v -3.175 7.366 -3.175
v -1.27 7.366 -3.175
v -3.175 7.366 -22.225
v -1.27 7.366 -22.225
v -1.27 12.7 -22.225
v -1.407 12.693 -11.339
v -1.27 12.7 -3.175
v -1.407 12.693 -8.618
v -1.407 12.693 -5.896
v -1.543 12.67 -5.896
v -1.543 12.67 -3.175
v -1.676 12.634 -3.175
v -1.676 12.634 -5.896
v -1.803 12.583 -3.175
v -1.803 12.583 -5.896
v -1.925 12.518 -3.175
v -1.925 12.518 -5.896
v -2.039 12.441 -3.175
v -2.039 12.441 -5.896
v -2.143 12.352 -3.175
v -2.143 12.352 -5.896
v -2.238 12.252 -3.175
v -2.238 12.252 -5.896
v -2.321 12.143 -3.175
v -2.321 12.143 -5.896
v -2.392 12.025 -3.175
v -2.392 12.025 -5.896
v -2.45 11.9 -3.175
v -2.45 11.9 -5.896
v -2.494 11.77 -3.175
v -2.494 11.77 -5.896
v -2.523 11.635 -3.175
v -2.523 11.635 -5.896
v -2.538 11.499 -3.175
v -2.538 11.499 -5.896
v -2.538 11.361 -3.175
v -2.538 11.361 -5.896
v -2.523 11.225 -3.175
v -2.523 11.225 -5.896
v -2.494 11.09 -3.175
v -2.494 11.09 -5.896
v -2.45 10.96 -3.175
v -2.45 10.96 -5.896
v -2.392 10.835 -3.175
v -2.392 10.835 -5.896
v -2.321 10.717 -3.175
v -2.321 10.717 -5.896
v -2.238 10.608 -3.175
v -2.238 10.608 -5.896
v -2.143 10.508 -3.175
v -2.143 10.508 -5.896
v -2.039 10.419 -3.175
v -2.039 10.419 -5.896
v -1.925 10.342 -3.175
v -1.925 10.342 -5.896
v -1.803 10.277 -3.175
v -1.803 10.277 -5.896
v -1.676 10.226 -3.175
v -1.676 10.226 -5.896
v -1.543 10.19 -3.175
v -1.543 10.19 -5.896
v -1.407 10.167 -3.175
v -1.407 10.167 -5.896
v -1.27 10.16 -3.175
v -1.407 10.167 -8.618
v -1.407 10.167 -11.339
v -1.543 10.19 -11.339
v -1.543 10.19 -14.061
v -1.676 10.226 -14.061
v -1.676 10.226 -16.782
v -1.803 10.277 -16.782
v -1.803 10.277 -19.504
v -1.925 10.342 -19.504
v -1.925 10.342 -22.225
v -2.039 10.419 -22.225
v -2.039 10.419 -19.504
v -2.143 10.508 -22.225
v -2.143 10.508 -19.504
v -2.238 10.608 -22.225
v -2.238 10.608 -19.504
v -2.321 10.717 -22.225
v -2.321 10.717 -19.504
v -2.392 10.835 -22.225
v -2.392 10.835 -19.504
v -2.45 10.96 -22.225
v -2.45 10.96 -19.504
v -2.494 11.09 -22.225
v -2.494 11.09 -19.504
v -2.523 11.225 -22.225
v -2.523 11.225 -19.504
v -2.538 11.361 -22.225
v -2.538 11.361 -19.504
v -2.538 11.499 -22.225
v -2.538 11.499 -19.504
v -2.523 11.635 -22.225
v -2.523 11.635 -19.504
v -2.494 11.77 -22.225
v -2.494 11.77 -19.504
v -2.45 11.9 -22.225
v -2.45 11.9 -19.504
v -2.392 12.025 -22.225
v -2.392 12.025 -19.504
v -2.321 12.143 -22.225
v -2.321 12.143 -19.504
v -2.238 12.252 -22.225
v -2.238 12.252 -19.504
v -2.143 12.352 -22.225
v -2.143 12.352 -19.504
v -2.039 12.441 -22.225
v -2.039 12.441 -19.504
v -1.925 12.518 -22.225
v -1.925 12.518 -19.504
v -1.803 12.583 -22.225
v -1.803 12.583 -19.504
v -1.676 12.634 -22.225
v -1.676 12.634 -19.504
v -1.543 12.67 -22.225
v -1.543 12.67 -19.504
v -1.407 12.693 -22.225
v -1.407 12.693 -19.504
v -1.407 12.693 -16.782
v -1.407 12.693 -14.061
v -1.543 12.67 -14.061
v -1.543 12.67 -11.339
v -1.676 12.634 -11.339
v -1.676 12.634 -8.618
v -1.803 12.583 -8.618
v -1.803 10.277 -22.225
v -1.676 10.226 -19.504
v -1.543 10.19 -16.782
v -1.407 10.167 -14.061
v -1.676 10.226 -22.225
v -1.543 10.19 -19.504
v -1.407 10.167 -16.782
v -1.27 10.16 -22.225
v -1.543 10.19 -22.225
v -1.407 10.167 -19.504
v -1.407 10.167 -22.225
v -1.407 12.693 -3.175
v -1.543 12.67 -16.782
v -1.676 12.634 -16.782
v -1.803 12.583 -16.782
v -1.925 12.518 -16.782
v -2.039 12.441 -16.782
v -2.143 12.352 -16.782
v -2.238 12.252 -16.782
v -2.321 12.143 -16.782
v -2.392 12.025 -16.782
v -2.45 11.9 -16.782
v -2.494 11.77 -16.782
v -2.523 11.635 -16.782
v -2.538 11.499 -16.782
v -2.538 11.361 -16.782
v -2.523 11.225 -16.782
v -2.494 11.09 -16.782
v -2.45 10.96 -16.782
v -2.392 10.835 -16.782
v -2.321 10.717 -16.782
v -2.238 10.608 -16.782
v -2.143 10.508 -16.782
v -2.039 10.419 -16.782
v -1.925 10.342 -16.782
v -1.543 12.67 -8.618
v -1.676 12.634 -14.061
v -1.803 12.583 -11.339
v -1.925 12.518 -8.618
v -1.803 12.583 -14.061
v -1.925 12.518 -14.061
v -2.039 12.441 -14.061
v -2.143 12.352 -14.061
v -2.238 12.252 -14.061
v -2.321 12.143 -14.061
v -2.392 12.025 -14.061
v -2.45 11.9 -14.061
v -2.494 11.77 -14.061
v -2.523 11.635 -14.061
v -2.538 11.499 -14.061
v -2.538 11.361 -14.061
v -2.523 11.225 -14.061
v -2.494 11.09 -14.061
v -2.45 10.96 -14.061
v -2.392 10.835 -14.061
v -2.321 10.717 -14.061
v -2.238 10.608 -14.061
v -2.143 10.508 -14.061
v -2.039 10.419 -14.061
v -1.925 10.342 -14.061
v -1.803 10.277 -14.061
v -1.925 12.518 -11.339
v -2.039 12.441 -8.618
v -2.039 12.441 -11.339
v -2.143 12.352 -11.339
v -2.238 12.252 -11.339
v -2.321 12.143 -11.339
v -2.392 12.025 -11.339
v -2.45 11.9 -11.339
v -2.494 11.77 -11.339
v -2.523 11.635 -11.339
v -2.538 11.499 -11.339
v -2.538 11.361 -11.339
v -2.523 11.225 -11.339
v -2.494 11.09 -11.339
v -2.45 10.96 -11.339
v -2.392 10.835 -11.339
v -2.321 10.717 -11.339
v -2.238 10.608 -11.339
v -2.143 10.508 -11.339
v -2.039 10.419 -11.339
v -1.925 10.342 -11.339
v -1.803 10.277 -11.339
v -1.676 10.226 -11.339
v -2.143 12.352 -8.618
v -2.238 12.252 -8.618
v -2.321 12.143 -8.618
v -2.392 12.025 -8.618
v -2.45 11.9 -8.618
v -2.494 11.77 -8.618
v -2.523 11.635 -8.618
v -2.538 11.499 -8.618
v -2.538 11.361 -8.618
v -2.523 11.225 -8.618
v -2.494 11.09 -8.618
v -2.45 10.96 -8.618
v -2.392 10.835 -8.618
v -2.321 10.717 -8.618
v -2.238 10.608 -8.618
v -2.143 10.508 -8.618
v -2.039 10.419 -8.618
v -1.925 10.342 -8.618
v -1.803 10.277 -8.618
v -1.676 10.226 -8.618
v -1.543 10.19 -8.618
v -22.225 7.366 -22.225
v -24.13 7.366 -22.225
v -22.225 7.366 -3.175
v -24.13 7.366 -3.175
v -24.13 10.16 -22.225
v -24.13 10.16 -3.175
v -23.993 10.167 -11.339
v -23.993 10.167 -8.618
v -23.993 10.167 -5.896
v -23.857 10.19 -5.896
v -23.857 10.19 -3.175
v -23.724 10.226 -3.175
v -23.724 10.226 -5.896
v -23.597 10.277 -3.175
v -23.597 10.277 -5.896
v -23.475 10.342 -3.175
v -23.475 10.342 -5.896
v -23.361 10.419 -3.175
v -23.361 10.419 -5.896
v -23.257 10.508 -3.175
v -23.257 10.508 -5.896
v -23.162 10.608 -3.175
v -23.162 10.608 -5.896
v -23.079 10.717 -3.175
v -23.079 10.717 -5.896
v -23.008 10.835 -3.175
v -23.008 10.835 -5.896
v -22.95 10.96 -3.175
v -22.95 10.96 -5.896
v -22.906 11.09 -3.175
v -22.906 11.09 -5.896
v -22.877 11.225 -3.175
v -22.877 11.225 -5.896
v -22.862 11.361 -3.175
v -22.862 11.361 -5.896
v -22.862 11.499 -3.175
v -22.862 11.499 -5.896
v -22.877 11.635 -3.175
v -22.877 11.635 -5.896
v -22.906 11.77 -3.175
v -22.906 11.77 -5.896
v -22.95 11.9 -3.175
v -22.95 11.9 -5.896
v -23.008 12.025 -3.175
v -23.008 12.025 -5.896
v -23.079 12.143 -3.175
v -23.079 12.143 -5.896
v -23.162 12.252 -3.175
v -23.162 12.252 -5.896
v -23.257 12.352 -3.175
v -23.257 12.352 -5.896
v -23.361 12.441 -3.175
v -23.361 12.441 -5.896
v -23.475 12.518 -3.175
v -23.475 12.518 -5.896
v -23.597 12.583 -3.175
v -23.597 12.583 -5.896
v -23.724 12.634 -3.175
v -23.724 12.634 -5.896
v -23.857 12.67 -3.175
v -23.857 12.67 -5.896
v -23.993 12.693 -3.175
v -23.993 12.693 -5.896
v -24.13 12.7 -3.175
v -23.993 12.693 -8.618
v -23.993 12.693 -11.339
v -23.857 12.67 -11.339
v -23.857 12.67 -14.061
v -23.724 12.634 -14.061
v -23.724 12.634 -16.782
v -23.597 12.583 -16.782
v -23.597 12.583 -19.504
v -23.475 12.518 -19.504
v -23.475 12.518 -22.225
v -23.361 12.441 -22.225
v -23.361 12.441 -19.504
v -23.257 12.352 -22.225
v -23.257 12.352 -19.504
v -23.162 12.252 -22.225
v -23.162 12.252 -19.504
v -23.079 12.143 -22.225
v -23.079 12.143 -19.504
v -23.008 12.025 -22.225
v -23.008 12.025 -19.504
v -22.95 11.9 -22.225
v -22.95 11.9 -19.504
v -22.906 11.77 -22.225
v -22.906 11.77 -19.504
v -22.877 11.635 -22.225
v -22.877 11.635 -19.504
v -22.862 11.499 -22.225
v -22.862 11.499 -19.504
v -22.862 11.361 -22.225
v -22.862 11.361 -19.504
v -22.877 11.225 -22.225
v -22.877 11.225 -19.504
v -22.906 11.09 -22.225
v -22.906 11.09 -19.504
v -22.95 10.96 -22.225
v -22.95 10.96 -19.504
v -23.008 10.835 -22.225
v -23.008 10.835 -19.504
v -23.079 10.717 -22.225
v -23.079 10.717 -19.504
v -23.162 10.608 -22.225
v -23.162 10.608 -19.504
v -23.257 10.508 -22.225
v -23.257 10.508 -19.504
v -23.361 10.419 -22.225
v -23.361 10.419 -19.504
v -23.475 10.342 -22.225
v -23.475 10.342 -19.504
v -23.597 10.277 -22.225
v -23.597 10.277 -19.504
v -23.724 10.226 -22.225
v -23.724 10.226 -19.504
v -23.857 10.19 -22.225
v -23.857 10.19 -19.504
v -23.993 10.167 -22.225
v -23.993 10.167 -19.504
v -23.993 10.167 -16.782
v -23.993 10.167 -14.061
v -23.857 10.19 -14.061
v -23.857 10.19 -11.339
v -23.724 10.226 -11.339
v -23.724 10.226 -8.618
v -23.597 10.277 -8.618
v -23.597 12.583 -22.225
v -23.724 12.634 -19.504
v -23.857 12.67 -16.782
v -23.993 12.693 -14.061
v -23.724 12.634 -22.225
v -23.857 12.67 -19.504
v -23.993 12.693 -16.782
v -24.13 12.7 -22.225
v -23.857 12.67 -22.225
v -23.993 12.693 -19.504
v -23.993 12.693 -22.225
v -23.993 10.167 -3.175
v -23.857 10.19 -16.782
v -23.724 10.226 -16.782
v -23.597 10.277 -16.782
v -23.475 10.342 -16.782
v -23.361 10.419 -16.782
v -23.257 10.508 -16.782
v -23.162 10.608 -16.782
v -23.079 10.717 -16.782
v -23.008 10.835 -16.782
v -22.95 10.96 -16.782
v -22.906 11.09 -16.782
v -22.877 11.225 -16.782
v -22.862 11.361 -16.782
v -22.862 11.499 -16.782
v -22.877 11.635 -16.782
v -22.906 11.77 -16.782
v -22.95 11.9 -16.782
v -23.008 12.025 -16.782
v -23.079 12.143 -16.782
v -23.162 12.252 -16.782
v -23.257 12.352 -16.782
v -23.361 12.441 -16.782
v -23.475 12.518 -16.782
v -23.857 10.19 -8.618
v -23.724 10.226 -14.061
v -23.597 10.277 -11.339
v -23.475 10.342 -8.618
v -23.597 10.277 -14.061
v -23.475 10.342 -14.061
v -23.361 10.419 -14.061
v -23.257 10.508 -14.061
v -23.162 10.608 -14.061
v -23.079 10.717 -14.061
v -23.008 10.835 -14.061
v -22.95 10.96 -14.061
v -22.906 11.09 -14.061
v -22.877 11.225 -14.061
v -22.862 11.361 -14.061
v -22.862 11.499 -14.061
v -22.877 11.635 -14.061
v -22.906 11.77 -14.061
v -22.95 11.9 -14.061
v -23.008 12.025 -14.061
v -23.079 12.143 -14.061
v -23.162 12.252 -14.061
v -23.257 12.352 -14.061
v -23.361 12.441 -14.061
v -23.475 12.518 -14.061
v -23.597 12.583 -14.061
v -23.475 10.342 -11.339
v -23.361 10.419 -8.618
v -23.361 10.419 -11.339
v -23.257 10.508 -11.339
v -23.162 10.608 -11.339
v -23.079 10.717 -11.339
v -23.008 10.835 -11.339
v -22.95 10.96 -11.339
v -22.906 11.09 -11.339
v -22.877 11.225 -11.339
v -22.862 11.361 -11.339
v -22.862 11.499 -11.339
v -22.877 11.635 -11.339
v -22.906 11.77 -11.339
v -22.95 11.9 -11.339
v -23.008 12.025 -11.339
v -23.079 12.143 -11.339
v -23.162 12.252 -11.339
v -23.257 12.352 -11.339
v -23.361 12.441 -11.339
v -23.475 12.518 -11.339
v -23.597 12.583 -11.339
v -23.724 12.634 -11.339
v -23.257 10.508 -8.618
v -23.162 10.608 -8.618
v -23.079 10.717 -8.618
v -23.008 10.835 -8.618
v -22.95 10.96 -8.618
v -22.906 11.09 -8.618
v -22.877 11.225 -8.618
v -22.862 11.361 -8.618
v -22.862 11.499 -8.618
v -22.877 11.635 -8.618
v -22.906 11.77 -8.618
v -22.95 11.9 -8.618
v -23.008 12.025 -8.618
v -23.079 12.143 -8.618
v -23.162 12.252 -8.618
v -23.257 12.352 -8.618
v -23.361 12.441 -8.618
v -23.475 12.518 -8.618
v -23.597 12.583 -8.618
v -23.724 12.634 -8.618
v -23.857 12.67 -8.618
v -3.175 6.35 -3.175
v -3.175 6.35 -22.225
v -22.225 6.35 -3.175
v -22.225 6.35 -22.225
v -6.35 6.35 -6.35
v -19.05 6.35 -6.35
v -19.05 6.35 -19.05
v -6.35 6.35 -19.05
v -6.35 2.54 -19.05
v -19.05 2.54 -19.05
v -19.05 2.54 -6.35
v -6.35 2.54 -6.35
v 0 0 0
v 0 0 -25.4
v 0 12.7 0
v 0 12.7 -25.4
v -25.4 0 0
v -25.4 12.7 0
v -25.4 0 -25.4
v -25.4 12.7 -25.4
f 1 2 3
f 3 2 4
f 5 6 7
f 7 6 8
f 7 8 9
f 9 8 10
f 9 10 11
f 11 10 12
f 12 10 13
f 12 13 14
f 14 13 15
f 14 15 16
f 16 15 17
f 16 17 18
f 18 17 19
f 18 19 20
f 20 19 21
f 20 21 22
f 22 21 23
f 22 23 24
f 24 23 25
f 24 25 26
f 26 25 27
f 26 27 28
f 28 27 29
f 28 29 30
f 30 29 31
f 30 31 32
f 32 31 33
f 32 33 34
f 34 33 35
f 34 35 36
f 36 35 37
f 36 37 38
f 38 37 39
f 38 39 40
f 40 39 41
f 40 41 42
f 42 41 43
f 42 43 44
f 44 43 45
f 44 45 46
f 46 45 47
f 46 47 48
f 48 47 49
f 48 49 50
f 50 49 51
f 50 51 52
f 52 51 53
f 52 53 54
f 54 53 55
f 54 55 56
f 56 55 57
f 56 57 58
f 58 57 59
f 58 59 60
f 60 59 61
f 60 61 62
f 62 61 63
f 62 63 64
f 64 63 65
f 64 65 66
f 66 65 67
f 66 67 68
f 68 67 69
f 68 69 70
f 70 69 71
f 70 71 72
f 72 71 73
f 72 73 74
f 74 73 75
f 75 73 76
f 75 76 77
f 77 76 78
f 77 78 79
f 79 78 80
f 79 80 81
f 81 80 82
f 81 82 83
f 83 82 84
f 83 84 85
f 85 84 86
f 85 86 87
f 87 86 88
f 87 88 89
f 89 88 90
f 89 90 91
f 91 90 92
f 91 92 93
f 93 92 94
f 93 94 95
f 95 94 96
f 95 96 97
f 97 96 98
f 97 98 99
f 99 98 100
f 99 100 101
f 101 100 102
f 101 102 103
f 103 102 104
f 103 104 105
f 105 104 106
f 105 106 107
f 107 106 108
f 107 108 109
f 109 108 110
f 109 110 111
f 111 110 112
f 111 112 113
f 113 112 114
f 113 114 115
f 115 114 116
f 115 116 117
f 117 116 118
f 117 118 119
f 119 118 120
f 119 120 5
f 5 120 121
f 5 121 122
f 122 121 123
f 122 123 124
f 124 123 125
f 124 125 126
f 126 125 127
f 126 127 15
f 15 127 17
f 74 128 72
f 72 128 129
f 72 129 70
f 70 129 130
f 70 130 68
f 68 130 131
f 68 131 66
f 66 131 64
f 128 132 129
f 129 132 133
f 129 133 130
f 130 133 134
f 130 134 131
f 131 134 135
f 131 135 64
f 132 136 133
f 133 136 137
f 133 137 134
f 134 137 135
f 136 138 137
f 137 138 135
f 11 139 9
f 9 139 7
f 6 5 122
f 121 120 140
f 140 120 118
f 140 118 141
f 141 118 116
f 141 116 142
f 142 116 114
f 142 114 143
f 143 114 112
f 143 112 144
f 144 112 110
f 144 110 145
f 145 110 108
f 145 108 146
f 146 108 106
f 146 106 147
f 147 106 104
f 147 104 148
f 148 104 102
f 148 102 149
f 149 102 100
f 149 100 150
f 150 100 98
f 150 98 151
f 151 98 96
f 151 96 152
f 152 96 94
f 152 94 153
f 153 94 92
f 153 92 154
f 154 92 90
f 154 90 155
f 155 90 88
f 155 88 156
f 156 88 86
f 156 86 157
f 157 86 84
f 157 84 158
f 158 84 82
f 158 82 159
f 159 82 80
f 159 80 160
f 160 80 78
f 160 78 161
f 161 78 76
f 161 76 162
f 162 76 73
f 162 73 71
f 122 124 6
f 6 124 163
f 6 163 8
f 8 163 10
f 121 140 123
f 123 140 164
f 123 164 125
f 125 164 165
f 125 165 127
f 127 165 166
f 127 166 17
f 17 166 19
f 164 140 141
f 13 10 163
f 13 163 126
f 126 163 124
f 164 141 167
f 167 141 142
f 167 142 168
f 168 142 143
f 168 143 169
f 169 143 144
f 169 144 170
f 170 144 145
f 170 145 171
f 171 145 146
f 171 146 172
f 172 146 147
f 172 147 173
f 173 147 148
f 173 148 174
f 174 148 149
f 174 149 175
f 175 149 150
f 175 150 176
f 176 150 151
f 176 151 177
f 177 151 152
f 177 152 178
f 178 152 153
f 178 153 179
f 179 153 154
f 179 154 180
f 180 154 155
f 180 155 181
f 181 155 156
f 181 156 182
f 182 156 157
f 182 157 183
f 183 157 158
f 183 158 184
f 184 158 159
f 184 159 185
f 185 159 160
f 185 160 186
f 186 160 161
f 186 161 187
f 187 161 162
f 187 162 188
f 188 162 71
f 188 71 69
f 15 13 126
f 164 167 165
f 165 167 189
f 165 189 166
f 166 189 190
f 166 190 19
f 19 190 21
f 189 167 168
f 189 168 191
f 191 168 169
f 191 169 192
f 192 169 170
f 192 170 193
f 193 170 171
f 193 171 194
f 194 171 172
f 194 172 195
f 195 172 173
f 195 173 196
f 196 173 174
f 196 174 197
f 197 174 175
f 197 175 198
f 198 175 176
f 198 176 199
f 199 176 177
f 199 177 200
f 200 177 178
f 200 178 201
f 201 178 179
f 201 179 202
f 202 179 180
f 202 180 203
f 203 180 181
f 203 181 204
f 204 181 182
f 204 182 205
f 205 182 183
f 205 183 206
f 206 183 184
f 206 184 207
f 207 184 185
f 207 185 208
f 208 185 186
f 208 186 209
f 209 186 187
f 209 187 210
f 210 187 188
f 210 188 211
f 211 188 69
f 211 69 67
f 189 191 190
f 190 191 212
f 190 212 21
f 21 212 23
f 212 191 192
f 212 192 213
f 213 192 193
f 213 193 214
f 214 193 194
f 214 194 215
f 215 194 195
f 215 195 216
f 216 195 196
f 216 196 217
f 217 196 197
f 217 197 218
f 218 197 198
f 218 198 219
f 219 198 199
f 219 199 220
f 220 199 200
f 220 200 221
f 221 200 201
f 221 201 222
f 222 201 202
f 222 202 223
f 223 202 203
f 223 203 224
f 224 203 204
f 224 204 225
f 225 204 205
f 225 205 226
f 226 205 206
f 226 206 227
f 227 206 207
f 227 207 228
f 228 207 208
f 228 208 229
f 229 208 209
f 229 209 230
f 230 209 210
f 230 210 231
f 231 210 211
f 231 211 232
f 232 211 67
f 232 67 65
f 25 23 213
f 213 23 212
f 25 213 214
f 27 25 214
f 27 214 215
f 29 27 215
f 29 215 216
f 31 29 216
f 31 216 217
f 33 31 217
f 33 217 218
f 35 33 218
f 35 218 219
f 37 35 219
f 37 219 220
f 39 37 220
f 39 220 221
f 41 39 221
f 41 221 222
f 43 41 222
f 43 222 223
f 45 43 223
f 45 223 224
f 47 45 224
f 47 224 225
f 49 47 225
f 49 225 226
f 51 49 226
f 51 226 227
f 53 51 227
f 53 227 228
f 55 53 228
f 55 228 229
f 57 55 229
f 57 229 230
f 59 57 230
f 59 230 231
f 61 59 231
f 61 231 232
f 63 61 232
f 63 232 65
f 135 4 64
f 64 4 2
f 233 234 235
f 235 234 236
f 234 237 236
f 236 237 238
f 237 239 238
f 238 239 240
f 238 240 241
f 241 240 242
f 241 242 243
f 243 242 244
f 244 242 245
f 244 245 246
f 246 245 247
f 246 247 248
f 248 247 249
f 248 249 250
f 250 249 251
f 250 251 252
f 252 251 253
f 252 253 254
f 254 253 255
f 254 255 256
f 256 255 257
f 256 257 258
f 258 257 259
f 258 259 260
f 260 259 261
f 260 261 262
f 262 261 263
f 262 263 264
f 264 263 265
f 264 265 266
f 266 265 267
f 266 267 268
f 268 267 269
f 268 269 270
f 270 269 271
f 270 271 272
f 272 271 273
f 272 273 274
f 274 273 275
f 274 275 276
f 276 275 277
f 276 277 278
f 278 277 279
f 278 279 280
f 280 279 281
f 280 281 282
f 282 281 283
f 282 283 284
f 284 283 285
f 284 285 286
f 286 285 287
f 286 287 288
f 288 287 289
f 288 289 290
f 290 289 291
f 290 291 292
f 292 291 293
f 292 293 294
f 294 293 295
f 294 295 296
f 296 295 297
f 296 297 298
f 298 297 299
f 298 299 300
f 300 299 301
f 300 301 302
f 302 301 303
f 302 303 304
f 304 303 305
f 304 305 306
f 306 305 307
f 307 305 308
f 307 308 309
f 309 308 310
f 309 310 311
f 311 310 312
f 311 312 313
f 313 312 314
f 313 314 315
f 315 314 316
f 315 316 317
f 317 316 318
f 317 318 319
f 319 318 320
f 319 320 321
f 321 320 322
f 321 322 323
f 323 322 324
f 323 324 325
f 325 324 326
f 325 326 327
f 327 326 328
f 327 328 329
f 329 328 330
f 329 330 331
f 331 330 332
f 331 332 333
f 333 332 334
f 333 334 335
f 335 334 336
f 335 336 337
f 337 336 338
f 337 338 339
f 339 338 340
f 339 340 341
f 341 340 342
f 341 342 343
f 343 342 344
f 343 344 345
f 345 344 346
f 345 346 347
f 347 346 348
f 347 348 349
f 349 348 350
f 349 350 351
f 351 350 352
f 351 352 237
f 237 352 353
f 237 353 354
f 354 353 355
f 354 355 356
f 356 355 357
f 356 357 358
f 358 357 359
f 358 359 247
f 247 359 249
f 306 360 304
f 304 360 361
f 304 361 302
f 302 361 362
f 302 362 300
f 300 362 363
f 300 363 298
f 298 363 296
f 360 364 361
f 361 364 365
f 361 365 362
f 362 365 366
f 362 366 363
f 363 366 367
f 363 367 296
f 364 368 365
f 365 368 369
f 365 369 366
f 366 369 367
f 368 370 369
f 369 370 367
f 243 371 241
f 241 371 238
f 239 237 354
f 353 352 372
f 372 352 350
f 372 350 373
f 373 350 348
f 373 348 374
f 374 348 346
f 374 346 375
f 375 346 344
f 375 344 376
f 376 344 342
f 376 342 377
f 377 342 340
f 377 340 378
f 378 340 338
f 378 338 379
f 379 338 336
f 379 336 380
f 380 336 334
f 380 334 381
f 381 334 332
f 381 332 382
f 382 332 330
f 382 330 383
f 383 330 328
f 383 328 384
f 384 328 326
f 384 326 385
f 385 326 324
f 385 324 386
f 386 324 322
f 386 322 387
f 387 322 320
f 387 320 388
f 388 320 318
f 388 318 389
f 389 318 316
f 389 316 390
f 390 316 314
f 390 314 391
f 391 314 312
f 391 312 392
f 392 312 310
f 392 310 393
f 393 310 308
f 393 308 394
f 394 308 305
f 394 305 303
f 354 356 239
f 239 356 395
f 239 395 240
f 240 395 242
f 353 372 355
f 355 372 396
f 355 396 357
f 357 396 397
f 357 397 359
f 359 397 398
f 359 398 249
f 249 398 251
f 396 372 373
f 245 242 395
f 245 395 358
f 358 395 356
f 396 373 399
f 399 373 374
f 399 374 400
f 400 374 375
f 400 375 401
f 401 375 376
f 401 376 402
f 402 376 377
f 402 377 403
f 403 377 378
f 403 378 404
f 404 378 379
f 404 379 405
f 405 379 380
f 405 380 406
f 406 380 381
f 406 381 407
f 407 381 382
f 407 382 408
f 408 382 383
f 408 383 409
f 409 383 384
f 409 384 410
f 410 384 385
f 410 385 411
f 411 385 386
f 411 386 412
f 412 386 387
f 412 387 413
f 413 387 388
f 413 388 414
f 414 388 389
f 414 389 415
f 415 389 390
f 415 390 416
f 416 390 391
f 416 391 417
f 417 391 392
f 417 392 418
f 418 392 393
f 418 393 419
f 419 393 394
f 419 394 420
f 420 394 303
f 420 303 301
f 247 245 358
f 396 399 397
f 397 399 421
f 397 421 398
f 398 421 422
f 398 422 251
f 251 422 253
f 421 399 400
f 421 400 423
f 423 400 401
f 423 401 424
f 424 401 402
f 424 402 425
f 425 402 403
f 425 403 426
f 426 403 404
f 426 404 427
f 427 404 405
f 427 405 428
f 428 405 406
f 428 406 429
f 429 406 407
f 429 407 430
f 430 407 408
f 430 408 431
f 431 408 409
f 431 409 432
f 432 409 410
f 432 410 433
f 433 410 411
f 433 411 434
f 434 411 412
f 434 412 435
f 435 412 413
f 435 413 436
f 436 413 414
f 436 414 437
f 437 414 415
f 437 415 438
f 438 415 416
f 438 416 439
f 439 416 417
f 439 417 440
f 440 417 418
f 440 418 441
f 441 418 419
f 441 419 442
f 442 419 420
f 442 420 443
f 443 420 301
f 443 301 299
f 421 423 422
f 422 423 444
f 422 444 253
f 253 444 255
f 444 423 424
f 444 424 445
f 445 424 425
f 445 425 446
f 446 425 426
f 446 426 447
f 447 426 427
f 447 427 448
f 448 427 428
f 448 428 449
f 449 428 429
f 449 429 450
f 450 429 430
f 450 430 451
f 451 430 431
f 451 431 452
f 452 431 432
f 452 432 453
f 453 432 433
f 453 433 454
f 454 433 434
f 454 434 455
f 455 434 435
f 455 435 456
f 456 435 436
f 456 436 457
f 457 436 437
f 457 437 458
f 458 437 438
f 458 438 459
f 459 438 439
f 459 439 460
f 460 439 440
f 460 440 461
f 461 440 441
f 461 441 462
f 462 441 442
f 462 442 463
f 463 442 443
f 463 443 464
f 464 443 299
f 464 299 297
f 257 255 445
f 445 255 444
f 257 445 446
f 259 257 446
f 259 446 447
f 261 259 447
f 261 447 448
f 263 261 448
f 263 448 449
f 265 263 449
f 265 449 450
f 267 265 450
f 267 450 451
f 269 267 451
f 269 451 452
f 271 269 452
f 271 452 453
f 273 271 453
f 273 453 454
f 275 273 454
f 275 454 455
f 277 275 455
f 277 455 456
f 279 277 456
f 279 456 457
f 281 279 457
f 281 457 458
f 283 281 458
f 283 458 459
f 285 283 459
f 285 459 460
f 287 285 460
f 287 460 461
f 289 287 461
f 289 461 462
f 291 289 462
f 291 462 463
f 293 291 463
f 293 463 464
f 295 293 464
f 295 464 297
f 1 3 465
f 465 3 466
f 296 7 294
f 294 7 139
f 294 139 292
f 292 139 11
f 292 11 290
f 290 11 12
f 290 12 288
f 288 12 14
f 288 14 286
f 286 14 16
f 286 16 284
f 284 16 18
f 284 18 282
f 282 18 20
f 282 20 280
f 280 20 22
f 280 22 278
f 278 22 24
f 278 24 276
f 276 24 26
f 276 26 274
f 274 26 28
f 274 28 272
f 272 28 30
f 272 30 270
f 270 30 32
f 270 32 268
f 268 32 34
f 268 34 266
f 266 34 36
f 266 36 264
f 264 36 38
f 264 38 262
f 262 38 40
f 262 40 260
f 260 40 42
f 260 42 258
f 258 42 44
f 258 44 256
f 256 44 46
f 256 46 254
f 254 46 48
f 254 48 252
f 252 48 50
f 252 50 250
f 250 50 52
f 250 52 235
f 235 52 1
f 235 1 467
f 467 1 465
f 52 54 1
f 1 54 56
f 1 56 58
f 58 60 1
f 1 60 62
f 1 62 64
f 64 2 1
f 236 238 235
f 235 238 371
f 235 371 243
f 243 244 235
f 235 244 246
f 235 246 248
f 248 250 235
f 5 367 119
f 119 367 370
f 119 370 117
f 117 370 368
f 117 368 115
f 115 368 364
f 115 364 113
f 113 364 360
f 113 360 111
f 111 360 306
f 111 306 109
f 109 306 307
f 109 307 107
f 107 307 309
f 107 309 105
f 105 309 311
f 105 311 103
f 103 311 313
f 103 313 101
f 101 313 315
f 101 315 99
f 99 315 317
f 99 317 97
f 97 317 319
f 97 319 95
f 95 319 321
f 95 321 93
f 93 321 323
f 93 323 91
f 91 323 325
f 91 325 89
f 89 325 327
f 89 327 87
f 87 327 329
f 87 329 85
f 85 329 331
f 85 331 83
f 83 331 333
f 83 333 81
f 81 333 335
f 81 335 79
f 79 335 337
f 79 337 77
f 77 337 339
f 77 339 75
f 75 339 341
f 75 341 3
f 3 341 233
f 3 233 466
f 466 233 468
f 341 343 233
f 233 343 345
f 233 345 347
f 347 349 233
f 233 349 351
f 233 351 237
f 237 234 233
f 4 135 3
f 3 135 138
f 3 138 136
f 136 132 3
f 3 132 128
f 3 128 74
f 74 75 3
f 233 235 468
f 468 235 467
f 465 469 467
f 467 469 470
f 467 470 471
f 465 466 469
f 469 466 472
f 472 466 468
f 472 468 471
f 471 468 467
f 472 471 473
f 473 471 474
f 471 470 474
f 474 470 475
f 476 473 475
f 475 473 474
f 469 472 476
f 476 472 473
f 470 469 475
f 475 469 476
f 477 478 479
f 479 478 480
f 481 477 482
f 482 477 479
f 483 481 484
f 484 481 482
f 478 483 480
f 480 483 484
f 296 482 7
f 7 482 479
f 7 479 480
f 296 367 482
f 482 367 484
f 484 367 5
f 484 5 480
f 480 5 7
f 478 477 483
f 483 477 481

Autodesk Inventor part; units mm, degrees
ref_plane "YZ Plane" through (0, 0, 0) normal (1, 0, 0) x (0, 1, 0)
sketch "Sketch1" plane through (0, 0, 0) normal (0, 1, 0) x (-1, 0, 0)
  line L0 (0, 0) -> (25.4, 0)
  line L1 (25.4, 0) -> (25.4, -25.4)
  line L2 (25.4, -25.4) -> (0, -25.4)
  line L3 (0, -25.4) -> (0, 0)
  dimension "d0" = 25.4
  dimension "d1" = 25.4
extrude "Extrusion1" add sketch "Sketch1" along normal blind 12.7
shell "Shell1" thickness 6.35 removed faces 1 at (-8.4667, 12.7, -8.4667)
sketch "Sketch2" plane through (0, 12.7, 0) normal (0, 1, 0) x (1, 0, 0)
  line L0 (-22.225, 22.225) -> (-3.175, 22.225)
  line L1 (-3.175, 22.225) -> (-3.175, 3.175)
  line L2 (-3.175, 3.175) -> (-22.225, 3.175)
  line L3 (-22.225, 3.175) -> (-22.225, 22.225)
  line L4 (0, 0) -> (0, 25.4) projected
  line L5 (0, 25.4) -> (-25.4, 25.4) projected
  line L6 (-19.05, 19.05) -> (-6.35, 19.05) projected
  line L7 (-6.35, 19.05) -> (-6.35, 6.35) projected
  line L8 (-19.05, 19.05) -> (-6.35, 19.05)
  line L9 (-6.35, 19.05) -> (-6.35, 6.35)
  line L10 (-6.35, 6.35) -> (-19.05, 6.35)
  line L11 (-19.05, 6.35) -> (-19.05, 19.05)
  dimension "d5" = 19.05
  dimension "d6" = 19.05
  dimension "d7" = 3.175
  dimension "d8" = 3.175
extrude "Extrusion2" cut sketch "Sketch2" against normal blind 10.16 contours L6 L7 L10 L11
extrude "Extrusion3" cut sketch "Sketch2" against normal blind 6.35
ref_plane "Work Plane1" through (-25.4, 0, -12.7) normal (0, 0, 1) x (1, 0, 0)
ref_plane "Work Plane2" through (-12.7, 0, 0) normal (1, 0, 0) x (0, 0, -1)
sketch "Sketch3" plane through (-25.4, 0, -12.7) normal (0, 0, 1) x (1, 0, 0)
  line L0 (25.4, 12.7) -> (0, 12.7) projected
  circle A0 centre (1.27, 11.43) radius 1.27
  line L1 (0, 0) -> (0, 12.7) projected
  circle A1 centre (24.13, 11.43) radius 1.27
  line L2 (25.4, 0) -> (25.4, 12.7) projected
  line L3 (0, 12.7) -> (1.27, 12.7)
  line L4 (1.27, 12.7) -> (1.27, 7.366)
  line L5 (1.27, 7.366) -> (0, 7.366)
  line L6 (0, 7.366) -> (0, 12.7)
  line L7 (0, 12.7) -> (3.81, 12.7)
  line L8 (3.81, 12.7) -> (3.81, 7.366)
  line L9 (3.81, 7.366) -> (0, 7.366)
  line L10 (0, 7.366) -> (0, 12.7)
  line L11 (25.4, 0) -> (25.4, 12.7) projected
  line L12 (25.4, 12.7) -> (24.13, 12.7)
  line L13 (24.13, 12.7) -> (24.13, 7.366)
  line L14 (24.13, 7.366) -> (25.4, 7.366)
  line L15 (25.4, 7.366) -> (25.4, 12.7)
  line L16 (25.4, 12.7) -> (21.59, 12.7)
  line L17 (21.59, 12.7) -> (21.59, 7.366)
  line L18 (21.59, 7.366) -> (25.4, 7.366)
  line L19 (25.4, 7.366) -> (25.4, 12.7)
  point P0 (24.13, 10.16)
  point P1 (24.13, 12.7)
  point P2 (1.27, 7.366)
  point P3 (3.81, 12.7)
  point P4 (1.27, 12.7)
  point P5 (1.27, 10.16)
  dimension "d16" = 2.54
  dimension "d17" = 1.27
  dimension "d18" = 1.27
  dimension "d20" = 2.54
  dimension "d21" = 1.27
  dimension "d22" = 1.27
  dimension "d23" = 1.27
  dimension "d24" = 5.334
  dimension "d25" = 1.27
  dimension "d26" = 5.334
  dimension "d27" = 3.81
  dimension "d28" = 5.334
  dimension "d29" = 5.334
  dimension "d30" = 3.81
extrude "Extrusion4" cut sketch "Sketch3" along normal mid plane 19.05 contours L8 L9 L4 A0 L0 | A1 L13 L18 L17 L0
sketch "Sketch4" plane through (-12.7, 0, 0) normal (1, 0, 0) x (0, 0, -1)
  circle A0 centre (1.27, 11.43) radius 1.27
  circle A1 centre (24.13, 11.43) radius 1.27
  line L0 (0, 12.7) -> (25.4, 12.7) projected
  line L1 (25.4, 0) -> (25.4, 12.7) projected
  line L2 (0, 0) -> (0, 12.7) projected
  line L3 (0, 12.7) -> (1.27, 12.7)
  line L4 (1.27, 12.7) -> (1.27, 8.89)
  line L5 (1.27, 8.89) -> (0, 8.89)
  line L6 (0, 8.89) -> (0, 12.7)
  line L7 (25.4, 12.7) -> (24.13, 12.7)
  line L8 (24.13, 12.7) -> (24.13, 8.89)
  line L9 (24.13, 8.89) -> (25.4, 8.89)
  line L10 (25.4, 8.89) -> (25.4, 12.7)
  line L11 (0, 12.7) -> (3.81, 12.7)
  line L12 (3.81, 12.7) -> (3.81, 8.89)
  line L13 (3.81, 8.89) -> (0, 8.89)
  line L14 (0, 8.89) -> (0, 12.7)
  line L15 (25.4, 12.7) -> (21.59, 12.7)
  line L16 (21.59, 12.7) -> (21.59, 8.89)
  line L17 (21.59, 8.89) -> (25.4, 8.89)
  line L18 (25.4, 8.89) -> (25.4, 12.7)
  dimension "d33" = 2.54
  dimension "d34" = 2.54
  dimension "d35" = 1.27
  dimension "d36" = 1.27
  dimension "d37" = 1.27
  dimension "d38" = 1.27
  dimension "d39" = 1.27
  dimension "d40" = 3.81
  dimension "d41" = 1.27
  dimension "d42" = 3.81
  dimension "d43" = 3.81
  dimension "d44" = 3.81
  dimension "d45" = 3.81
  dimension "d46" = 3.81
properties part number "boxtest"
